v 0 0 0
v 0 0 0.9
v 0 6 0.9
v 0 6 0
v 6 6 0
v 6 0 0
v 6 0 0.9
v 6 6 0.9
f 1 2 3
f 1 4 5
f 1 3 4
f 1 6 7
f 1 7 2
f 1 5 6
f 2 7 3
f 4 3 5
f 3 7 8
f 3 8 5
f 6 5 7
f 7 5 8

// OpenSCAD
/* Warning, this is a very basic generator with a lot of approximation 
input data : [QFN-S, M2X, 6x6x0.9mm, 28, , D, C04-00124D]
generated by com.zoubworld.electronics.cad.model3d.Basic
Date : Sun Feb 15 10:50:48 CET 2026
*/

//body
color("black")
translate([0,0,0])
cube([6.0,6.0,0.9], center=false);
